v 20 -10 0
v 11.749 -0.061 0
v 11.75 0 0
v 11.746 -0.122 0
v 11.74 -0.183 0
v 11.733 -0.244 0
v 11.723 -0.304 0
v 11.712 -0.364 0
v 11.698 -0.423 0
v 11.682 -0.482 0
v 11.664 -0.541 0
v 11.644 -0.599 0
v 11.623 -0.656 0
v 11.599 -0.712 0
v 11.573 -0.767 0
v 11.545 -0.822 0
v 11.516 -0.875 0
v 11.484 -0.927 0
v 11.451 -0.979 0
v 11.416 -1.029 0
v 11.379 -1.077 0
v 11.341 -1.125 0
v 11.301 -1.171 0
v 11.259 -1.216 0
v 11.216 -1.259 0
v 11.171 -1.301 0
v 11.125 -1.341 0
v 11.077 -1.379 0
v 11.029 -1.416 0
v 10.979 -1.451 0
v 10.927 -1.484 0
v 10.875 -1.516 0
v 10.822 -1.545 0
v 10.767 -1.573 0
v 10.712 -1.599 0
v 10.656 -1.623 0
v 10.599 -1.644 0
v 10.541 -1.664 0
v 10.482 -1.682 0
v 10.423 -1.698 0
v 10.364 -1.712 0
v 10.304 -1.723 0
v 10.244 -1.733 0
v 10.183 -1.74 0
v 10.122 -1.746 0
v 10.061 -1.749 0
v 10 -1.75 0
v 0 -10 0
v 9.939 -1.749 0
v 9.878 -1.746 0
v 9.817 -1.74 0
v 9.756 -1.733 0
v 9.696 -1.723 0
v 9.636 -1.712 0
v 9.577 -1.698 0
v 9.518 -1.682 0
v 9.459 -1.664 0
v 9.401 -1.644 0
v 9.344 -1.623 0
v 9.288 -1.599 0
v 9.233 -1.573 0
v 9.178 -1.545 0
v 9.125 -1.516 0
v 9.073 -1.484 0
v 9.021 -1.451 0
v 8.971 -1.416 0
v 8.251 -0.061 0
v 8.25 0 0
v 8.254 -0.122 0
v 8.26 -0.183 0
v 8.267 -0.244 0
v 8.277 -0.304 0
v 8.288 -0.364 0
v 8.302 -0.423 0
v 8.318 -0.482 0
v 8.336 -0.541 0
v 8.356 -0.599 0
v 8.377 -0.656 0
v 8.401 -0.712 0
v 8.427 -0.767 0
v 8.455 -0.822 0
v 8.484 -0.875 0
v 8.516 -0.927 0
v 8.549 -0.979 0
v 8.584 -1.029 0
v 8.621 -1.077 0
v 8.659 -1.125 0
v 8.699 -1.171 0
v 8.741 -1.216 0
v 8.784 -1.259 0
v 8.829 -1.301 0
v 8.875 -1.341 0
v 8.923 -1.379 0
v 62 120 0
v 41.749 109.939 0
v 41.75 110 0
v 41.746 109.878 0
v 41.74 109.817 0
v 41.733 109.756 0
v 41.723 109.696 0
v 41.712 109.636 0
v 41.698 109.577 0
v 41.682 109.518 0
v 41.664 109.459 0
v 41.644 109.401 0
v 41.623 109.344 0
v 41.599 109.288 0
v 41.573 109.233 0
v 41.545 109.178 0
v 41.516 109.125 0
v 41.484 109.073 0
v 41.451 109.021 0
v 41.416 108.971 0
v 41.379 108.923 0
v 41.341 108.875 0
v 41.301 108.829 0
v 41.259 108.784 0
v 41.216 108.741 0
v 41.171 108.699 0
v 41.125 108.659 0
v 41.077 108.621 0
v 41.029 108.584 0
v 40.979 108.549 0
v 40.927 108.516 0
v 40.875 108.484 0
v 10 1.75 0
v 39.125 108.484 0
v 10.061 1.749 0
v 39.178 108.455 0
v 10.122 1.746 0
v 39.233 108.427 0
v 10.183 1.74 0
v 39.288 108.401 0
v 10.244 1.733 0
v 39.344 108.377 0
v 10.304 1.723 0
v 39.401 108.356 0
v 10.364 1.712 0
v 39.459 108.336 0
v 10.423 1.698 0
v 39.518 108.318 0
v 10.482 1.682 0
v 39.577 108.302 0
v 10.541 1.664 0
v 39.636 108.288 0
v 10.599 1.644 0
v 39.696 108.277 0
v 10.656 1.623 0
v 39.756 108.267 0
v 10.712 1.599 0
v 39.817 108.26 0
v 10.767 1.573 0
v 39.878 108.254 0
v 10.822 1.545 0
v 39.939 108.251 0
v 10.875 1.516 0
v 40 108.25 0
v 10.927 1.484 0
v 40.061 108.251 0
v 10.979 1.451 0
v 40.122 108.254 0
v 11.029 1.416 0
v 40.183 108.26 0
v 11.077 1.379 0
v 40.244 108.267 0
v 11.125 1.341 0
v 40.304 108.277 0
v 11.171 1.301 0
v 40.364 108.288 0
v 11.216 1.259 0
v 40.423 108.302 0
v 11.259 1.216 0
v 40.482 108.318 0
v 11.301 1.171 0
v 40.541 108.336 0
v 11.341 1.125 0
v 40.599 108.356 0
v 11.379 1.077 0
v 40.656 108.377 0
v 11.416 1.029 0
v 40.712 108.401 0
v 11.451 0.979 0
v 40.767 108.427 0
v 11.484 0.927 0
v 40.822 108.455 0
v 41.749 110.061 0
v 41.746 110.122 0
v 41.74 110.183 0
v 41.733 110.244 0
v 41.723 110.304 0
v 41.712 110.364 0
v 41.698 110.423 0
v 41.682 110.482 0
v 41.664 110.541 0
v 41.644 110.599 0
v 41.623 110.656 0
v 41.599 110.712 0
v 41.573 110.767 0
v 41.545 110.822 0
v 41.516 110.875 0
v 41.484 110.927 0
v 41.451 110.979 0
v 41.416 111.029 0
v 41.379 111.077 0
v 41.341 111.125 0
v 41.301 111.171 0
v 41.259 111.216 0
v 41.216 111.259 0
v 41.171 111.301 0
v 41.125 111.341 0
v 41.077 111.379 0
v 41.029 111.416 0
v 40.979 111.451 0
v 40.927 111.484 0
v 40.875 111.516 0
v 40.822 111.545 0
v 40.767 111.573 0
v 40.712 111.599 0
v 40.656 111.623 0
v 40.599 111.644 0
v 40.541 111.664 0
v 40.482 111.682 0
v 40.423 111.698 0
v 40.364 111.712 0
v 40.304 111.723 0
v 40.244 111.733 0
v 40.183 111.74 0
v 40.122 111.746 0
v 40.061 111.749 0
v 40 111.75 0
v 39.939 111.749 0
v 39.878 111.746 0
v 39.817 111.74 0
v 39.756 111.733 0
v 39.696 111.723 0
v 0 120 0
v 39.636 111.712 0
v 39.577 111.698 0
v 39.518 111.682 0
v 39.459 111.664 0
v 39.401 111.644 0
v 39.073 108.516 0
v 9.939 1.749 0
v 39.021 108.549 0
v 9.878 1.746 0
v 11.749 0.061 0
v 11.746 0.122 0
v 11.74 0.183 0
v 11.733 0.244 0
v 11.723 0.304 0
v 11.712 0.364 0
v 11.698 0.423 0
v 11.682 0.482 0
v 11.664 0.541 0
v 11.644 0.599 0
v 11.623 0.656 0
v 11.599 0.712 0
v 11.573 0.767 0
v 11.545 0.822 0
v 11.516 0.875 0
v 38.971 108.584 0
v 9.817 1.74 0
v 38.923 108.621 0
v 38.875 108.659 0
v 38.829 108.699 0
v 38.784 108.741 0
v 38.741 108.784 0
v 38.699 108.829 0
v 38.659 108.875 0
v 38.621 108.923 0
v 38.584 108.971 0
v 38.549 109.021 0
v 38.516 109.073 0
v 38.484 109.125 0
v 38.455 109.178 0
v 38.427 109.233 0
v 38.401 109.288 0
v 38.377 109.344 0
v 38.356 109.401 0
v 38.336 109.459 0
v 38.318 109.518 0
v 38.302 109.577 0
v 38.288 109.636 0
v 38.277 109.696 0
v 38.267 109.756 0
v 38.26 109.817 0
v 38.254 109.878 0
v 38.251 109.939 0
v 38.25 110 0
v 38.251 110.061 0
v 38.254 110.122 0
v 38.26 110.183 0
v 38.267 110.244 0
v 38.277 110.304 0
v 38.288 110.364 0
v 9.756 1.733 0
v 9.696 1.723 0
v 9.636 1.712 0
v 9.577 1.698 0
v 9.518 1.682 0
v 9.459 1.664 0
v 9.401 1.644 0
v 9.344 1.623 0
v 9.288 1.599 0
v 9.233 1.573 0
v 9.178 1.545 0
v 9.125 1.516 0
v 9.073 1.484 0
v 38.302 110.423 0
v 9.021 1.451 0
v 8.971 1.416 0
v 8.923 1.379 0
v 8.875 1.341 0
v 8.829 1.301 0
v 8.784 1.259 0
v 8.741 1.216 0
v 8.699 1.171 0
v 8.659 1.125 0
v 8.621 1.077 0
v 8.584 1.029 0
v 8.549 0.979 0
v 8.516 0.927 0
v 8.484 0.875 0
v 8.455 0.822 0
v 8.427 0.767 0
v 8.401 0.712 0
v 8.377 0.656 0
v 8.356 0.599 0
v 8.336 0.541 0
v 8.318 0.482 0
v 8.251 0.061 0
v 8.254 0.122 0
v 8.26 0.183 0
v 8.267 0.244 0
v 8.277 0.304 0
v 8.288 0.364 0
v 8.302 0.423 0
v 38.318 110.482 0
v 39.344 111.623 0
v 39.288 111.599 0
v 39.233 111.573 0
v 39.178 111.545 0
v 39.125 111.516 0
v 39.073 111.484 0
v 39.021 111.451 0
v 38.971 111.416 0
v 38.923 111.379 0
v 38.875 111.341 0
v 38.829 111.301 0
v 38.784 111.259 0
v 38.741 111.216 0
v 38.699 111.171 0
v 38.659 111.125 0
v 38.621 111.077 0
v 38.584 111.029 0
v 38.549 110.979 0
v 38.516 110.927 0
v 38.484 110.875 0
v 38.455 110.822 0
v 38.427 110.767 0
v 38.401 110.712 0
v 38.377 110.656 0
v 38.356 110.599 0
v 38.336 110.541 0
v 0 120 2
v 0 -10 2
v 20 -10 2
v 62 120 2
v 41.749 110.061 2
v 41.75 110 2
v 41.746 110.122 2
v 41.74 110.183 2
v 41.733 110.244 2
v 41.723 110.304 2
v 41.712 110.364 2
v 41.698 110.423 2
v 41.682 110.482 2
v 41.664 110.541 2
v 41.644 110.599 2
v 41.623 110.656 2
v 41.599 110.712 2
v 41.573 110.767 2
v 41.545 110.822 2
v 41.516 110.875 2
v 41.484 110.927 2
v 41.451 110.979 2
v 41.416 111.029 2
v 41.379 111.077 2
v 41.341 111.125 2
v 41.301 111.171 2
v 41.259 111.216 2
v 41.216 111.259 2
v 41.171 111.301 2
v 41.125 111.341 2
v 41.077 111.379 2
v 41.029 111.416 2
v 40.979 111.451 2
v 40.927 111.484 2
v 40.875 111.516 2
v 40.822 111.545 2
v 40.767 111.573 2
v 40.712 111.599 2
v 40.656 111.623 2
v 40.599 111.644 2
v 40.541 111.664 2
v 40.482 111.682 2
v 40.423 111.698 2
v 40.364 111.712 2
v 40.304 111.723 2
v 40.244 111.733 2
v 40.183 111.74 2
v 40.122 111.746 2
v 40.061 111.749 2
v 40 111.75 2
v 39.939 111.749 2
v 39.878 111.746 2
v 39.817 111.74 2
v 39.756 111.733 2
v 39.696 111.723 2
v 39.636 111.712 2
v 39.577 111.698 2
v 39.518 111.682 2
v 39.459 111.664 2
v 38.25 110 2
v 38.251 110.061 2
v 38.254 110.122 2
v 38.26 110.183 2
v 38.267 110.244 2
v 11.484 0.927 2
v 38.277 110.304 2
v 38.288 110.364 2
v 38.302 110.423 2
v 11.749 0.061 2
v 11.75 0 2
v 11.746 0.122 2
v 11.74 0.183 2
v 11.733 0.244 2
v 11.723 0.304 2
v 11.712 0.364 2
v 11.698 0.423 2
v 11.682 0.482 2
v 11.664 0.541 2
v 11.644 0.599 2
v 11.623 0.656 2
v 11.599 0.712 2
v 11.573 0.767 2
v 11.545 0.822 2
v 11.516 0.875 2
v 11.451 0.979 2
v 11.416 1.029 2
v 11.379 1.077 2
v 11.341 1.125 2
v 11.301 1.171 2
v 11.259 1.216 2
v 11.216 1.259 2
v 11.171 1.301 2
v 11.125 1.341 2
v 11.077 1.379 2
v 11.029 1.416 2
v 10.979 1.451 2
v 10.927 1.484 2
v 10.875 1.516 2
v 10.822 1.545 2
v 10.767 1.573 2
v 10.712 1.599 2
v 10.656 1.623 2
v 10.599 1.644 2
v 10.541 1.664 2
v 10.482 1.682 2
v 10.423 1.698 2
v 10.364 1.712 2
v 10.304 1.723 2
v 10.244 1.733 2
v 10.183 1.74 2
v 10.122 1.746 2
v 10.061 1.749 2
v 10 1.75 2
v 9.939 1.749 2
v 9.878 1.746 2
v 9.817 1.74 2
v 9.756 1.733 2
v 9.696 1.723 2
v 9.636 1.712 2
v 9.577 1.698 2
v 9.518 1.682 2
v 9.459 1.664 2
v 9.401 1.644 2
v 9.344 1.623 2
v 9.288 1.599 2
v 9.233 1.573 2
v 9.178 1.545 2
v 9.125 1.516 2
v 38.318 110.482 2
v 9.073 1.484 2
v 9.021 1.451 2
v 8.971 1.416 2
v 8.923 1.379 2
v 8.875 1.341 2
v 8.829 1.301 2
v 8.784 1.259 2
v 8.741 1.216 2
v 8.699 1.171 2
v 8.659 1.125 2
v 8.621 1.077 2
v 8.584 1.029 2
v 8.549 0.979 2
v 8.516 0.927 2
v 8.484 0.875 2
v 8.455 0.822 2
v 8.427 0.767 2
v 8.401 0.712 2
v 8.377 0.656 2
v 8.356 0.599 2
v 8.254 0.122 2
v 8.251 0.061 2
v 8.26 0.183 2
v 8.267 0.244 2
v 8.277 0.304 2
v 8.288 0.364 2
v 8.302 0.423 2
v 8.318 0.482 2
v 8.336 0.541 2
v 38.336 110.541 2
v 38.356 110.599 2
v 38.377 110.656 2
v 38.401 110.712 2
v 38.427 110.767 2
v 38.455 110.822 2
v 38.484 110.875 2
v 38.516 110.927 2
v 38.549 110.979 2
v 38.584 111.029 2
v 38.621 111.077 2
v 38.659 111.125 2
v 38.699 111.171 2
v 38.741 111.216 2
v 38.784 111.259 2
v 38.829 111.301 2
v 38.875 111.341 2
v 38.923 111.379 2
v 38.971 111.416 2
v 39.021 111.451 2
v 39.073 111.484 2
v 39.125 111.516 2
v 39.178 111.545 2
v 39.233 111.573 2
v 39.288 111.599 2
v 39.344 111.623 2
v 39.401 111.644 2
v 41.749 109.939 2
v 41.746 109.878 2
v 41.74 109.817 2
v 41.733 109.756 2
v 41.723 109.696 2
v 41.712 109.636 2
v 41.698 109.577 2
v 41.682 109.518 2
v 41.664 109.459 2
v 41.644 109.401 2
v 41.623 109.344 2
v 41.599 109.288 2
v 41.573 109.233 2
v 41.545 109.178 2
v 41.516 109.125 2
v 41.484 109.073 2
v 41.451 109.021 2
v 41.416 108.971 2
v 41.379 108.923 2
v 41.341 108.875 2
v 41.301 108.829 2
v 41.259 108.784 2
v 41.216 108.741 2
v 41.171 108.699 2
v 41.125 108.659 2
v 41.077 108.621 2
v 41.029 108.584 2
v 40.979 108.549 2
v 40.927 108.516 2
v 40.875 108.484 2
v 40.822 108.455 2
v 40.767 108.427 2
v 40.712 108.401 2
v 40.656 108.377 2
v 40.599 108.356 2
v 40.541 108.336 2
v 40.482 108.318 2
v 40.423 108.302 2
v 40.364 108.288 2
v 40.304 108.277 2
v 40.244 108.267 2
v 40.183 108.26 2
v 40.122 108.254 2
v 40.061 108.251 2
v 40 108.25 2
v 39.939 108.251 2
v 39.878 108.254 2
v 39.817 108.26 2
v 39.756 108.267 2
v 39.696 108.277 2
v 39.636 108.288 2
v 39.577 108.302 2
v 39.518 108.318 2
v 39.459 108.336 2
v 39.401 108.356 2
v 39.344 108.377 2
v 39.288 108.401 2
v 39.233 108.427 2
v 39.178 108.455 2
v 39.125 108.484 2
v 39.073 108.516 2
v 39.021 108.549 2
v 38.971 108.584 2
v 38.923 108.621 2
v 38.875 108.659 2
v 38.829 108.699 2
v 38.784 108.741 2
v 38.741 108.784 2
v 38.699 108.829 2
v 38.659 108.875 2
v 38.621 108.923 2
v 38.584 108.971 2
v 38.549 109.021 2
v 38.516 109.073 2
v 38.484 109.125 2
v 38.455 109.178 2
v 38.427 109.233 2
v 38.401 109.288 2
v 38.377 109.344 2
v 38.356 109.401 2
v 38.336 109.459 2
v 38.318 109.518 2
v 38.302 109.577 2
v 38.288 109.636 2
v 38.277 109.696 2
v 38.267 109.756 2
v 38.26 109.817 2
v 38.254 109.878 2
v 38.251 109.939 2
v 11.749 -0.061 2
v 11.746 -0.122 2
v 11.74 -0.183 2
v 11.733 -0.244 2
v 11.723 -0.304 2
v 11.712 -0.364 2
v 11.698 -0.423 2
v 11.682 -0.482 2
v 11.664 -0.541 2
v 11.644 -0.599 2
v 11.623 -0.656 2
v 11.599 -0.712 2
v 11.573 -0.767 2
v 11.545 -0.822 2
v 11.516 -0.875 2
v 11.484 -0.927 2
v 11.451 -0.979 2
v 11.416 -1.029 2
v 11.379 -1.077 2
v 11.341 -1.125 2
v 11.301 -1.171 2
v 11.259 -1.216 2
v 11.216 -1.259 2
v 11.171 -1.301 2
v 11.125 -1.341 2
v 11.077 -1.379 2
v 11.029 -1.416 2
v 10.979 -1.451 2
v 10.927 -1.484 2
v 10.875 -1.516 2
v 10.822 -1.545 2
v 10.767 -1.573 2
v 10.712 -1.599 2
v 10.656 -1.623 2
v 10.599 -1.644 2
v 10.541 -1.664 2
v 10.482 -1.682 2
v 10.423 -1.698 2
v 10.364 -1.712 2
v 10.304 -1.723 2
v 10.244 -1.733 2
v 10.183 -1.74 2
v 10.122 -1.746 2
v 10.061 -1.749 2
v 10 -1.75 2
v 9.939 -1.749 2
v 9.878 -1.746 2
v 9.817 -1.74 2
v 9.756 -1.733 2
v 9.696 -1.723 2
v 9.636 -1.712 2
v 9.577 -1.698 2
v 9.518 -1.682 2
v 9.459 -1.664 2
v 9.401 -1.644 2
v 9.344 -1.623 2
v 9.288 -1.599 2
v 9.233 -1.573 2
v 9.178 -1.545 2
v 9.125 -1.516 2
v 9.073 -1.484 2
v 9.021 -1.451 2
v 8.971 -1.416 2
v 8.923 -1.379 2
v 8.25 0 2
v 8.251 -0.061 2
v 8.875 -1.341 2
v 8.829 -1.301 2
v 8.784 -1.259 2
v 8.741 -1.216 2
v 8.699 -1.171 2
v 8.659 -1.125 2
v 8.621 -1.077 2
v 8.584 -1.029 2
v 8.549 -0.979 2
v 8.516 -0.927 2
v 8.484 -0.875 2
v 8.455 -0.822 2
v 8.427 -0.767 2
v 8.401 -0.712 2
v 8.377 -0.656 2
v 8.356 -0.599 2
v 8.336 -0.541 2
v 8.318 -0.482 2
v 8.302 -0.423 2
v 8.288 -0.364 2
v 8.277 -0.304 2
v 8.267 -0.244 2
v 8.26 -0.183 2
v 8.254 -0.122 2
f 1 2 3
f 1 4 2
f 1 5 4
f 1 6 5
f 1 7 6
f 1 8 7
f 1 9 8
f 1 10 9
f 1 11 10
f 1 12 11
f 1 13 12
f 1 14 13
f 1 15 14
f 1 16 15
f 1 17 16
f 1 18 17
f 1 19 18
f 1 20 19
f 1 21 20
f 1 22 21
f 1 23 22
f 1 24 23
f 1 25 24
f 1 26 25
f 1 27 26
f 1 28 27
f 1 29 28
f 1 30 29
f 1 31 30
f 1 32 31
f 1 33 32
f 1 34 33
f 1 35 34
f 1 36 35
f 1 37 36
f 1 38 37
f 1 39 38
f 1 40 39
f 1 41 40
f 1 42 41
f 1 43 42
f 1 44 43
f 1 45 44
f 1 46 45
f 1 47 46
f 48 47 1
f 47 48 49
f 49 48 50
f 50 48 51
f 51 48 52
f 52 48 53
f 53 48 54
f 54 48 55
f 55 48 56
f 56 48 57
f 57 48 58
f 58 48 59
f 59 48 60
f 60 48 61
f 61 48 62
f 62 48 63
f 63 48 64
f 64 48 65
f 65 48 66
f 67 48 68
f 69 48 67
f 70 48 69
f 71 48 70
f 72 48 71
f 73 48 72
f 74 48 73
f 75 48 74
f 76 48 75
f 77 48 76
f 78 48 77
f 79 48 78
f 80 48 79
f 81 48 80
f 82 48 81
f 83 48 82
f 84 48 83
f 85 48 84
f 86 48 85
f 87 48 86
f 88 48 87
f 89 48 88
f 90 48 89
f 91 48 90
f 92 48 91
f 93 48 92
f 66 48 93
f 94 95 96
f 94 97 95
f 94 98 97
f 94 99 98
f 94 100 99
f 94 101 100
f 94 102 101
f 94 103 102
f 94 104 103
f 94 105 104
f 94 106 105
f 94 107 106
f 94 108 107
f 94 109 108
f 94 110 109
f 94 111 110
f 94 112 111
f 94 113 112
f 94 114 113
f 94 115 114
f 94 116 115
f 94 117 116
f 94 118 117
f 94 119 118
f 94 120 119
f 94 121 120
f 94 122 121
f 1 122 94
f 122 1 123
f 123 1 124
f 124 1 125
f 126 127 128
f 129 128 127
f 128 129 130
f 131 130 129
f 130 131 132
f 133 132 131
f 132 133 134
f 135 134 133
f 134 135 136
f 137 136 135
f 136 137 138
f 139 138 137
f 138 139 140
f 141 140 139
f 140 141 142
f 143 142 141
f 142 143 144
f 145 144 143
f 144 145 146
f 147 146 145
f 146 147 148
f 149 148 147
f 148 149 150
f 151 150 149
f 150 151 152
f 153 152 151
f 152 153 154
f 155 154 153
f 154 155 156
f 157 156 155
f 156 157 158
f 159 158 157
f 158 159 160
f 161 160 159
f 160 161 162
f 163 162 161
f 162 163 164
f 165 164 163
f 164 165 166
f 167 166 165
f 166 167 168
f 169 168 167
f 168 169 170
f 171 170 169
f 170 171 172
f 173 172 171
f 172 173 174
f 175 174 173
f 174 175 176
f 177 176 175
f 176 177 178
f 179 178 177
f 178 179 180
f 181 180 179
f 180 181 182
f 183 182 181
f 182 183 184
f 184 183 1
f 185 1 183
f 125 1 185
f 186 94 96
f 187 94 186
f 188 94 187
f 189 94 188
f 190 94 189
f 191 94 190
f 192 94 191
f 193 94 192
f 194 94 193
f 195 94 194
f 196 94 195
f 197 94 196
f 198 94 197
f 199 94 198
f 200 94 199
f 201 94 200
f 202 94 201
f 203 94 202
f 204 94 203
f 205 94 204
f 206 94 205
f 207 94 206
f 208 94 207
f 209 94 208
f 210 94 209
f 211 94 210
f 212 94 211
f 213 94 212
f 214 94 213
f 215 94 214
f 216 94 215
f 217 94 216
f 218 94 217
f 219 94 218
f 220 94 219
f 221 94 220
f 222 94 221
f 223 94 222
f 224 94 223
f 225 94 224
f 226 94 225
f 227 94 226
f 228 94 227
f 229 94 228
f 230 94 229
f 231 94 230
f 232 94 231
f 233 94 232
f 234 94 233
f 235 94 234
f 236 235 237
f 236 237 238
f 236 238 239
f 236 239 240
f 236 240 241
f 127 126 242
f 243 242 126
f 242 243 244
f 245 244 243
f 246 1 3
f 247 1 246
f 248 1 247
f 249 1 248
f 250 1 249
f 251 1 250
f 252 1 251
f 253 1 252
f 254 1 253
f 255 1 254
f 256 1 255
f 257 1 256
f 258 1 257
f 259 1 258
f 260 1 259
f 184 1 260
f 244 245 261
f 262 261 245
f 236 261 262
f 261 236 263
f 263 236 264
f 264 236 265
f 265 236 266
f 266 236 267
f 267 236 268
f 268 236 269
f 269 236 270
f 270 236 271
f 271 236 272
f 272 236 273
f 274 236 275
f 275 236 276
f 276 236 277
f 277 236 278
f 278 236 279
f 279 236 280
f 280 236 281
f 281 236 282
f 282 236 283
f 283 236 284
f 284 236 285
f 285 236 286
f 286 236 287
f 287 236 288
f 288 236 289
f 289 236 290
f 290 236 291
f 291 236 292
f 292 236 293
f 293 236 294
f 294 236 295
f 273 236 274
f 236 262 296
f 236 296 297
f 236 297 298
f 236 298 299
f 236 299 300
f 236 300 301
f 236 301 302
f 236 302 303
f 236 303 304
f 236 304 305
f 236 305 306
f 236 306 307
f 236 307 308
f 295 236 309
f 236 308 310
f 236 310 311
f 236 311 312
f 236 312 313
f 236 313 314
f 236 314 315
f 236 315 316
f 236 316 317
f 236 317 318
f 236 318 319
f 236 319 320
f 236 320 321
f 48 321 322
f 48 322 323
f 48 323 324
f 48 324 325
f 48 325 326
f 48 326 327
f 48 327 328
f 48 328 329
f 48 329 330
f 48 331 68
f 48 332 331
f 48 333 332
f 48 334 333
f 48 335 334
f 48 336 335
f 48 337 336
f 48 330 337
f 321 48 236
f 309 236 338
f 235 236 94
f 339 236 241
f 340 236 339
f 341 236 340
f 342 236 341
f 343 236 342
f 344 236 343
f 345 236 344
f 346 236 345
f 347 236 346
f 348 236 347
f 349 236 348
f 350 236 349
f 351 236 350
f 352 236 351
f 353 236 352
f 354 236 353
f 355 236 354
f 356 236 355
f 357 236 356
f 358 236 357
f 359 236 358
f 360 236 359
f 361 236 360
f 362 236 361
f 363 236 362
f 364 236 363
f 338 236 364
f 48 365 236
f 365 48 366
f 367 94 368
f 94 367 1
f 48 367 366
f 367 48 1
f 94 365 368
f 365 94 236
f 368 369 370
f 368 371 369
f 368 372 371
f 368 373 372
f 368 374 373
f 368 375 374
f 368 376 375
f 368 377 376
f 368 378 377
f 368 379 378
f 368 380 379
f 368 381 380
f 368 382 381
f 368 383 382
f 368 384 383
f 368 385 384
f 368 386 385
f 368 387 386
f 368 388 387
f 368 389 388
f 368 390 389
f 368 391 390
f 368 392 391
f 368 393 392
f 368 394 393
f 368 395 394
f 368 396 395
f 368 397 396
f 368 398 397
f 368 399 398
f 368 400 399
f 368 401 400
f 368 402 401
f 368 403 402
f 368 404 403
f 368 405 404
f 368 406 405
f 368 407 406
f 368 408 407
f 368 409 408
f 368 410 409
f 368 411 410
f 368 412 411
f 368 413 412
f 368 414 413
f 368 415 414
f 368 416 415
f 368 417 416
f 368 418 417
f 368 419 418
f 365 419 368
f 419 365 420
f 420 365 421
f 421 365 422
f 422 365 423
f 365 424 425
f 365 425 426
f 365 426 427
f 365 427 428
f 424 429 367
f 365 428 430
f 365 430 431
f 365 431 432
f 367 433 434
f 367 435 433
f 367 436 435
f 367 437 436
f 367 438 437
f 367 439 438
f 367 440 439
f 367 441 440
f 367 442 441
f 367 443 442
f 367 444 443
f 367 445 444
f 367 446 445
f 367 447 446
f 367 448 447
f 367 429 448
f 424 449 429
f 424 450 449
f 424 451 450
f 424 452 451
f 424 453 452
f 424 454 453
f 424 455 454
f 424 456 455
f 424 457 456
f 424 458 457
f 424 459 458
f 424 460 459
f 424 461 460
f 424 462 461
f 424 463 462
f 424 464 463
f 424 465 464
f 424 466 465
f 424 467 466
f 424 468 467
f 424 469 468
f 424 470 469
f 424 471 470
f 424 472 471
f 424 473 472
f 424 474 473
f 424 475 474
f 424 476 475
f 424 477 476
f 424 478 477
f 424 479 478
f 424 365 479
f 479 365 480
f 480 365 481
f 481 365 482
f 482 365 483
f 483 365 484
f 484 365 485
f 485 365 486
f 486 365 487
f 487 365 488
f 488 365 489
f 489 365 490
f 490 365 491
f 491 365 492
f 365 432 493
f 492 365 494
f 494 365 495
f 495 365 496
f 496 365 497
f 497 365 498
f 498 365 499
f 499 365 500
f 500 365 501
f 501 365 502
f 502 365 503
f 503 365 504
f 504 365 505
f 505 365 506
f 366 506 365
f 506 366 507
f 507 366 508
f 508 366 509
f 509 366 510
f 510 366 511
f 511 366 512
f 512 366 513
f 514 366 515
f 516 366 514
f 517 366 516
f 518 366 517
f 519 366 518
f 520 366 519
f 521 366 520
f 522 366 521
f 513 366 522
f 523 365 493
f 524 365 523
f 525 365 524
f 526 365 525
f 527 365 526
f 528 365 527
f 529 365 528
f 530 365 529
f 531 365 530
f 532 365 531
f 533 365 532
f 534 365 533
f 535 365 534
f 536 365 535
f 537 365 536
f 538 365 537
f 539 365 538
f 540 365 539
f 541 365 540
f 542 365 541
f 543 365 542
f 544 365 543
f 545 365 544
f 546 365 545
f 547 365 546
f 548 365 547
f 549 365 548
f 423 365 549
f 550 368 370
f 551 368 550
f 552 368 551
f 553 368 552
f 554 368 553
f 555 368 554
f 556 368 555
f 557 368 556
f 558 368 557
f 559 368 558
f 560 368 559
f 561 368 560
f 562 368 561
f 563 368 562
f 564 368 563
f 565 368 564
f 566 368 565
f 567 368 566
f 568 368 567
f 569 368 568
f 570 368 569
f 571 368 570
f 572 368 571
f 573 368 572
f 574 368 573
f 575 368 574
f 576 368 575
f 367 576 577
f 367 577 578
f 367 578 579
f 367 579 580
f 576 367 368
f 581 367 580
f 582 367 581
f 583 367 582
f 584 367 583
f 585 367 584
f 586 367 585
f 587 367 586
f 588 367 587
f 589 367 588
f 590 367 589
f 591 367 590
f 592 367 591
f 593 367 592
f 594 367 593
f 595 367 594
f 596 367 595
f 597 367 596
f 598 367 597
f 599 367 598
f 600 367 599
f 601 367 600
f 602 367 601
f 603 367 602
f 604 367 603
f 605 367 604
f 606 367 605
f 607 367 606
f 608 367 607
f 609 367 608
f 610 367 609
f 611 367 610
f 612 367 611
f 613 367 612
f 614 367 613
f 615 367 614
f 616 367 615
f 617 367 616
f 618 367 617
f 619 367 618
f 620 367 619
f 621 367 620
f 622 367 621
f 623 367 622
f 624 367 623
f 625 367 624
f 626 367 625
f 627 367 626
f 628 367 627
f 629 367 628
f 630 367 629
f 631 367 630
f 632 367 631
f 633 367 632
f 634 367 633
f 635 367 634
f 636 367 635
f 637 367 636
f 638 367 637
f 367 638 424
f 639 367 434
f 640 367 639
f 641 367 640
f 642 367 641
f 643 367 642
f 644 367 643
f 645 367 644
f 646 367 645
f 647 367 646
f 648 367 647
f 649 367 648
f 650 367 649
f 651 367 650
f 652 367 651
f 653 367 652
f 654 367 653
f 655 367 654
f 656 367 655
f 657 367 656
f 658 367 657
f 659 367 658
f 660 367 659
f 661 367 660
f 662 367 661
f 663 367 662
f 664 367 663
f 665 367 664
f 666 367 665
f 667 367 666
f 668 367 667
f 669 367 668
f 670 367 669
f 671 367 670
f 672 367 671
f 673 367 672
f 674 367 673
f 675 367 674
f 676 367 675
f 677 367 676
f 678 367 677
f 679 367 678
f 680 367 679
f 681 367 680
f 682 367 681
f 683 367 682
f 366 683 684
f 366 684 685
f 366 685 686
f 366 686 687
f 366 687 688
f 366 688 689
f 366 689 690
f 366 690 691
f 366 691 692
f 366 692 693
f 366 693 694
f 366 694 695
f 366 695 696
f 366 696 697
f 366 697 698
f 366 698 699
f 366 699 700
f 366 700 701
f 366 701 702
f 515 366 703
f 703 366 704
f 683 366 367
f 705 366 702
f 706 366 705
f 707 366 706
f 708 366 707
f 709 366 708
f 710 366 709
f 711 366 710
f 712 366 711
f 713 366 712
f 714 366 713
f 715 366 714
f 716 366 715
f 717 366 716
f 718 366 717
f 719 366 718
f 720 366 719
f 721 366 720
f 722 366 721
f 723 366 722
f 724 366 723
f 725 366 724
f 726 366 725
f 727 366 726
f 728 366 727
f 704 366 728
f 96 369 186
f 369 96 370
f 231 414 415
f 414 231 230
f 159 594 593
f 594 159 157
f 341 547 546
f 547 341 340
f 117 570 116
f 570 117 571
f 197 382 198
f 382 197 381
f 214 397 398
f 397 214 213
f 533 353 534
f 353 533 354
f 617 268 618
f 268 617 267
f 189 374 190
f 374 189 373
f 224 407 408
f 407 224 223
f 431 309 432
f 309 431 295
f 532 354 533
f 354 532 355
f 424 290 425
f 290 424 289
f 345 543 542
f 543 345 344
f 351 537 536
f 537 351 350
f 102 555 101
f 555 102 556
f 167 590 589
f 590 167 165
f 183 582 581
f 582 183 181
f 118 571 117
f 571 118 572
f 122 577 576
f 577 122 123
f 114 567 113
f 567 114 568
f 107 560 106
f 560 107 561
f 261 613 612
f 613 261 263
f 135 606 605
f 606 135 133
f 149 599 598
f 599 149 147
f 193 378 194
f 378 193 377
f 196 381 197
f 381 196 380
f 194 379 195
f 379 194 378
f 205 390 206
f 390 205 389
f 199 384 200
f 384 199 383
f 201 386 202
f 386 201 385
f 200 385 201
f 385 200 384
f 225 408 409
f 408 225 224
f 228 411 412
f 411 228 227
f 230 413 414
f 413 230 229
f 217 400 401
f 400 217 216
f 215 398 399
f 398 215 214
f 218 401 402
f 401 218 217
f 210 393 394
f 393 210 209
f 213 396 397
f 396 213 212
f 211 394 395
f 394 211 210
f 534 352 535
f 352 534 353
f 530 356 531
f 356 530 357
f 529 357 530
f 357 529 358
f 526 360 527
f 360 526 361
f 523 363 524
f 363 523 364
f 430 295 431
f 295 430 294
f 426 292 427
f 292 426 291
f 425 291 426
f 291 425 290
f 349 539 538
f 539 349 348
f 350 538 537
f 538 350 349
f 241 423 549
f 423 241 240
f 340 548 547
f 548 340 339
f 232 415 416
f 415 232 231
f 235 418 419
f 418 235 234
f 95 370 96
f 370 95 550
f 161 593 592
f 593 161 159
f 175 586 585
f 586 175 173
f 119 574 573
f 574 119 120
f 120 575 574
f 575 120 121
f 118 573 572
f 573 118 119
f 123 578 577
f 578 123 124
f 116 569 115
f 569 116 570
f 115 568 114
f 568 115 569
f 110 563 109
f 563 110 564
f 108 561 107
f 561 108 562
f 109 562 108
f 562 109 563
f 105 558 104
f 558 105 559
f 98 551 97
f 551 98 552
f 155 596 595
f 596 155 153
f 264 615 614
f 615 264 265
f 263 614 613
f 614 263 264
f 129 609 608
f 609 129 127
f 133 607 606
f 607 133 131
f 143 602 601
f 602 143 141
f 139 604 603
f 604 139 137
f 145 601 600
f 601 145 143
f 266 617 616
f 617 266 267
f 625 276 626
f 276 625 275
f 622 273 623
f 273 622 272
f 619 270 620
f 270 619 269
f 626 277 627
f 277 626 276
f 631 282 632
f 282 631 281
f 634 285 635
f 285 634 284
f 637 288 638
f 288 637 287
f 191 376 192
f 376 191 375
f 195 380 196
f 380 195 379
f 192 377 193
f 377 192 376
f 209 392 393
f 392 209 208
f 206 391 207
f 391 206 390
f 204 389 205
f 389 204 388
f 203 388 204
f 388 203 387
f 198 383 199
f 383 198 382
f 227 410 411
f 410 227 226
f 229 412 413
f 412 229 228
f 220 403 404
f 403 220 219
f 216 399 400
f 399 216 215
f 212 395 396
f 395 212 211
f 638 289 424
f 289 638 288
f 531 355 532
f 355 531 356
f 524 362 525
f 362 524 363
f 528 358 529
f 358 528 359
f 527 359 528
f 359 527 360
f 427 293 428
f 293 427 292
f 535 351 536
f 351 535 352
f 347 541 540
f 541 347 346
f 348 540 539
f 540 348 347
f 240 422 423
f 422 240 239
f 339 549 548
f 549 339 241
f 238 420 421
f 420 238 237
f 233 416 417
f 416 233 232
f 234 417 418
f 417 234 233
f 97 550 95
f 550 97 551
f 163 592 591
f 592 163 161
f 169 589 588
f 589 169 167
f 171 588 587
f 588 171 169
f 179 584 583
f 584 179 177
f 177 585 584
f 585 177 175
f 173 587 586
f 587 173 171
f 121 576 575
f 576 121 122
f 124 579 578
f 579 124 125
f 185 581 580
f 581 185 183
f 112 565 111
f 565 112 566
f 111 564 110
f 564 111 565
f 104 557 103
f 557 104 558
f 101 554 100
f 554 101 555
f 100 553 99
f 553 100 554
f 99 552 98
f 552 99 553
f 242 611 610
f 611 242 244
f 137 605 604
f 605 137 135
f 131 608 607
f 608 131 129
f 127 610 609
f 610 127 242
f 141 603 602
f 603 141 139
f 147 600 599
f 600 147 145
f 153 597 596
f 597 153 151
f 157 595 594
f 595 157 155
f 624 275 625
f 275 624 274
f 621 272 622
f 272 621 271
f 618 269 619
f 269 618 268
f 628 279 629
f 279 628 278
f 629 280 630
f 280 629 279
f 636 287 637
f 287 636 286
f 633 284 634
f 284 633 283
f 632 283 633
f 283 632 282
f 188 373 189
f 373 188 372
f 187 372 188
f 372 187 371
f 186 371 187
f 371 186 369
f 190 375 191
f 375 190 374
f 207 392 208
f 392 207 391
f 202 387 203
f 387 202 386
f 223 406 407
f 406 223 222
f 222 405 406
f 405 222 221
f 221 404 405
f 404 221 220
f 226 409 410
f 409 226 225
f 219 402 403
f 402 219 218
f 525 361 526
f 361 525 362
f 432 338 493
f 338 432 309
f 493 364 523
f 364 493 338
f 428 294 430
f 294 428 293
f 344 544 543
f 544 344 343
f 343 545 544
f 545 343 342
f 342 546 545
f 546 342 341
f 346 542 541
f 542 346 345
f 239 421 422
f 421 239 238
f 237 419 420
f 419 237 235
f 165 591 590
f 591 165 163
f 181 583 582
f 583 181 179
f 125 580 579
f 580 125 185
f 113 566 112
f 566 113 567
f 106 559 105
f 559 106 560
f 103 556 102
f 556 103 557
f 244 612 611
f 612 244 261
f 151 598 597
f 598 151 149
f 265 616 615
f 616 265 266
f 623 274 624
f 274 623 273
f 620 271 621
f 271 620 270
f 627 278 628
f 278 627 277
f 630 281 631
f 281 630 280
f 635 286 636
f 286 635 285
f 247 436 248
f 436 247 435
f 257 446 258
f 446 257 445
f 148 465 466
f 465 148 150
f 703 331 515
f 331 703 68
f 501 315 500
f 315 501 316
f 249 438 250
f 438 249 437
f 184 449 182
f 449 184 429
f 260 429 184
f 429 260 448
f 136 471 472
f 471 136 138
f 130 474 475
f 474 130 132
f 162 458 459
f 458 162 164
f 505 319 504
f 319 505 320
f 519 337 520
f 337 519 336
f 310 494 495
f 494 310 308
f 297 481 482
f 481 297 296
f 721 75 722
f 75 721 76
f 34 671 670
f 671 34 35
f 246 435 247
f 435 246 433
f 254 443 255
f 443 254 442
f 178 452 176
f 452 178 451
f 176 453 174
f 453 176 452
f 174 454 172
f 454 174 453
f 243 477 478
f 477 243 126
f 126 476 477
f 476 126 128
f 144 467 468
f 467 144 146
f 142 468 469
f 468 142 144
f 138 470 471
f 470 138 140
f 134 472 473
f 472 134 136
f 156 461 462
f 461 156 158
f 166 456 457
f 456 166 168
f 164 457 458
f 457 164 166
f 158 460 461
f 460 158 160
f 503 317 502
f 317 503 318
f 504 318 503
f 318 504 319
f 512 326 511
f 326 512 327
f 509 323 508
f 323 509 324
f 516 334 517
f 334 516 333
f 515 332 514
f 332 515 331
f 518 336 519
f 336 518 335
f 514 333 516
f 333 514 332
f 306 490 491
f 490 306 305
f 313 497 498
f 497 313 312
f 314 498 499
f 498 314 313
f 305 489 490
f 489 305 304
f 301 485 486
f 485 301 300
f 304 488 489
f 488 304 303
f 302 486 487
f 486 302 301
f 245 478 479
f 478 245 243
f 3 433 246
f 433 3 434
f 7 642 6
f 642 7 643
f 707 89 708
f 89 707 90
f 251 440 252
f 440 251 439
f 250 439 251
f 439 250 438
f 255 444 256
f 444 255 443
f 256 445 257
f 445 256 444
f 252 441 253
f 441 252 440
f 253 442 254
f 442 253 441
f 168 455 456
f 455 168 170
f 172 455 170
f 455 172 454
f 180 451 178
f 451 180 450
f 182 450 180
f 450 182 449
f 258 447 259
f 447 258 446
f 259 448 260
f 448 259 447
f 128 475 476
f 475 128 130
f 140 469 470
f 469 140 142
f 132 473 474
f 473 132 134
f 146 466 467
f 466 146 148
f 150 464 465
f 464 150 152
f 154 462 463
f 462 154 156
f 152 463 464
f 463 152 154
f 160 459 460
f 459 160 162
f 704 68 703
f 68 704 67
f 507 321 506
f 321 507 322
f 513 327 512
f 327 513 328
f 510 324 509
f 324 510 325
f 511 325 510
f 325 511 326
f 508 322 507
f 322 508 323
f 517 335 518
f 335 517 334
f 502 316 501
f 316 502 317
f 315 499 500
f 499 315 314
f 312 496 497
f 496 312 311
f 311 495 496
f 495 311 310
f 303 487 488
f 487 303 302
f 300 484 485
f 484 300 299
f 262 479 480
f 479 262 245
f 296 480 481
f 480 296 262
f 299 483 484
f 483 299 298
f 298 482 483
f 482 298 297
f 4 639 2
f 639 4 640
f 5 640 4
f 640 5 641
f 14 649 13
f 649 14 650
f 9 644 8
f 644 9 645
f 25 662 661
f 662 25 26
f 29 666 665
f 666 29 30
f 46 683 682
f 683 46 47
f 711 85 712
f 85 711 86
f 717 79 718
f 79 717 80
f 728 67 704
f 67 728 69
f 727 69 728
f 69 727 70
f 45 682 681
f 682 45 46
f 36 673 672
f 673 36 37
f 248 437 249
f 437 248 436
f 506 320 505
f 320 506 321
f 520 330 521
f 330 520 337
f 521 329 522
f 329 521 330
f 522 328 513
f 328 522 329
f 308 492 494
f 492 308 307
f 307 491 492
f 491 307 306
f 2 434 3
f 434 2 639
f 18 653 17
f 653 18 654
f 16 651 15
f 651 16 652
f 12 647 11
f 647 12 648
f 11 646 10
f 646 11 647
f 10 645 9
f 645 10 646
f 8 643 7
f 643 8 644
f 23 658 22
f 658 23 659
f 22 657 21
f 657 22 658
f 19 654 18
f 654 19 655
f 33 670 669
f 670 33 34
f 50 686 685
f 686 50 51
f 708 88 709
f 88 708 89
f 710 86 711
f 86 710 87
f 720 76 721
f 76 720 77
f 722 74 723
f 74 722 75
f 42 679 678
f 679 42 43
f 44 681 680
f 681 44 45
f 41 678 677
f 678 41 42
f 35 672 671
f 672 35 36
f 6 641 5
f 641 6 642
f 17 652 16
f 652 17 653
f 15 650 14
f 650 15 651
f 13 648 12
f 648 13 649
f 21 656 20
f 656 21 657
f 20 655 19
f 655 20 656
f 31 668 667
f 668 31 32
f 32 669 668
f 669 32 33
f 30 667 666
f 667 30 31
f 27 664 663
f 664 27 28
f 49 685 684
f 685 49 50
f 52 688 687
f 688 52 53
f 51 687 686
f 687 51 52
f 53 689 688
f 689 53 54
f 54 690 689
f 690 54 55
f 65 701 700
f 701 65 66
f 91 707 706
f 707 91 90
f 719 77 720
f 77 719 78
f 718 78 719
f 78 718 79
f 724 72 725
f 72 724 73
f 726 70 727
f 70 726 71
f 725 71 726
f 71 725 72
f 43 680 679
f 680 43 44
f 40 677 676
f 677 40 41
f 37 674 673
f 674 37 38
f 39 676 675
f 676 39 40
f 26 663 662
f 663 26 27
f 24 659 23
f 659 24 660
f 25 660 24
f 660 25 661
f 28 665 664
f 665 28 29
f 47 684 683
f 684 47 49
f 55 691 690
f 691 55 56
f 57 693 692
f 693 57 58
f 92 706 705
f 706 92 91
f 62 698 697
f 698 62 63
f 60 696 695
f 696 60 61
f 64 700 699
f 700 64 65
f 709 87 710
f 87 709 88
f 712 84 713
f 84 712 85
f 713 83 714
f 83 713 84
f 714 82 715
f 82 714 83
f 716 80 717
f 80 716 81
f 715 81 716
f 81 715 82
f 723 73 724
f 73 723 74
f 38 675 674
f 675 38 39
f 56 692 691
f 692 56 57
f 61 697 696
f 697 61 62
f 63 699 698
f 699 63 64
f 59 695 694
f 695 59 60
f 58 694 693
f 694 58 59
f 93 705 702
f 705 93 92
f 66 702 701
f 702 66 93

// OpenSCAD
// Settings
$fn = $preview ? 24 : 180;
// variables
margin              =   0.01;

// variables
exit_h      =  20;
ballpath_h  =  32;
ballpath_w1 =  30;
roof_h      =   2;

//
part_w      =  60;
part_l      = 120;
ramp_l_extra=  40; // 4 cm in part, 4 cm extra


    path_radius     = 100-33;//146;
    path_diameter   = 33;
    path_angle      = 90 ;
    path_rotate     = 180 ; 
   
witdthMax   =62;

ShapePoints = [
    // Top
    [  0,  -10,  0 ],     //  0
    [ 20,  -10,  0 ],     
    [ witdthMax, 120, 0 ],     
    [ 30+margin, 120, 0 ],     
    [ 30,  80, 0 ], 
    [ 30, 160, 0 ],     
    [  0, 160, 0 ],     
    [  0,  80, 0 ],     //  7
    

  
    // Bottom
    [  0,  -10,  exit_h ],     //  8
    [ 20,  -10,  exit_h ],     
    [ witdthMax, 120, exit_h ],     
    [ 30+margin, 120, exit_h ],     
    [ 30,  80, exit_h ], 
    [ 30, 160, 0 ],     
    [  0, 160, 0 ],     
    [  0,  80, exit_h ],     //  15

 

]; 
  
ShapeFaces = [
  [ 0, 1, 2, 3, 4, 5, 6,7],  // Bottom
  
  [ 1, 0, 8, 9],  
  [ 2, 1, 9,10],  
  [ 3, 2,10,11],  
  [ 4, 3,11,12],  
  [ 5, 4,12,13],  
  [ 6, 5,13,14],  
  [ 7, 6,14,15],  
  [ 0, 7,15, 8], 

  [15,14,13,12, 11,10, 9, 8]   // Top
]; 



ShapePoints2 = [
    // Top
    [  0,  -10,  0 ],     //  0
    [ 20,  -10,  0 ],     
    [ witdthMax, 120, 0 ],     
    [ 30+margin, 120, 0 ],     
    [ 30,  80, 0 ], 
    [  0,  80, 0 ],     //  5
    

  
    // Bottom
    [  0,  -10,  ballpath_h ],     //  6
    [ 20,  -10,  ballpath_h ],     
    [ witdthMax, 120, ballpath_h ],     
    [ 30+margin, 120, ballpath_h ],     
    [ 30,  80, ballpath_h ], 
    [  0,  80, ballpath_h ],     //  11

 

]; 
  
ShapeFaces2 = [
  [ 0, 1, 2, 3, 4, 5],  // Bottom
  
  [ 1, 0, 6, 7],  
  [ 2, 1, 7, 8],  
  [ 3, 2, 8, 9],  
  [ 4, 3, 9,10],  
  [ 5, 4,10,11],  
  [ 0, 5,11, 6],  


  [11,10, 9, 8, 7, 6]   // Top
];


ShapePoints3 = [
    // Top
    [  0,  -10,  0 ],     //  0
    [ 20,  -10,  0 ],     
    [ witdthMax, 120, 0 ],     
    [  0, 120, 0 ],     //  3
    

  
    // Bottom
    [  0,  -10,  roof_h ],     //  4
    [ 20,  -10,  roof_h ],     
    [ witdthMax, 120, roof_h ],     
    [  0, 120, roof_h ],     //  7

 

]; 
  
ShapeFaces3 = [
  [ 0, 1, 2, 3],  // Bottom
  
  [ 1, 0, 4, 5],  
  [ 2, 1, 5, 6],  
  [ 3, 2, 6, 7],  
  [ 0, 3, 7, 4],  
 


  [7, 6, 5, 4]   // Top
];

arc1=108;

module M3InsertHole(Insert_D=4, Insert_H=6.7)
{
    // Centre x & y , and zero z 
    translate([0,0,Insert_H/2]) 
    cylinder(h=Insert_H, d=Insert_D,center = true);
}


difference(){

        translate([0,00])polyhedron( ShapePoints3, ShapeFaces3 );
    

       # translate([ 40,110,-6.7+roof_h+margin]) M3InsertHole(Insert_D=3.5);
       # translate([ 10,0,-6.7+roof_h+margin]) M3InsertHole(Insert_D=3.5);   
    
}
